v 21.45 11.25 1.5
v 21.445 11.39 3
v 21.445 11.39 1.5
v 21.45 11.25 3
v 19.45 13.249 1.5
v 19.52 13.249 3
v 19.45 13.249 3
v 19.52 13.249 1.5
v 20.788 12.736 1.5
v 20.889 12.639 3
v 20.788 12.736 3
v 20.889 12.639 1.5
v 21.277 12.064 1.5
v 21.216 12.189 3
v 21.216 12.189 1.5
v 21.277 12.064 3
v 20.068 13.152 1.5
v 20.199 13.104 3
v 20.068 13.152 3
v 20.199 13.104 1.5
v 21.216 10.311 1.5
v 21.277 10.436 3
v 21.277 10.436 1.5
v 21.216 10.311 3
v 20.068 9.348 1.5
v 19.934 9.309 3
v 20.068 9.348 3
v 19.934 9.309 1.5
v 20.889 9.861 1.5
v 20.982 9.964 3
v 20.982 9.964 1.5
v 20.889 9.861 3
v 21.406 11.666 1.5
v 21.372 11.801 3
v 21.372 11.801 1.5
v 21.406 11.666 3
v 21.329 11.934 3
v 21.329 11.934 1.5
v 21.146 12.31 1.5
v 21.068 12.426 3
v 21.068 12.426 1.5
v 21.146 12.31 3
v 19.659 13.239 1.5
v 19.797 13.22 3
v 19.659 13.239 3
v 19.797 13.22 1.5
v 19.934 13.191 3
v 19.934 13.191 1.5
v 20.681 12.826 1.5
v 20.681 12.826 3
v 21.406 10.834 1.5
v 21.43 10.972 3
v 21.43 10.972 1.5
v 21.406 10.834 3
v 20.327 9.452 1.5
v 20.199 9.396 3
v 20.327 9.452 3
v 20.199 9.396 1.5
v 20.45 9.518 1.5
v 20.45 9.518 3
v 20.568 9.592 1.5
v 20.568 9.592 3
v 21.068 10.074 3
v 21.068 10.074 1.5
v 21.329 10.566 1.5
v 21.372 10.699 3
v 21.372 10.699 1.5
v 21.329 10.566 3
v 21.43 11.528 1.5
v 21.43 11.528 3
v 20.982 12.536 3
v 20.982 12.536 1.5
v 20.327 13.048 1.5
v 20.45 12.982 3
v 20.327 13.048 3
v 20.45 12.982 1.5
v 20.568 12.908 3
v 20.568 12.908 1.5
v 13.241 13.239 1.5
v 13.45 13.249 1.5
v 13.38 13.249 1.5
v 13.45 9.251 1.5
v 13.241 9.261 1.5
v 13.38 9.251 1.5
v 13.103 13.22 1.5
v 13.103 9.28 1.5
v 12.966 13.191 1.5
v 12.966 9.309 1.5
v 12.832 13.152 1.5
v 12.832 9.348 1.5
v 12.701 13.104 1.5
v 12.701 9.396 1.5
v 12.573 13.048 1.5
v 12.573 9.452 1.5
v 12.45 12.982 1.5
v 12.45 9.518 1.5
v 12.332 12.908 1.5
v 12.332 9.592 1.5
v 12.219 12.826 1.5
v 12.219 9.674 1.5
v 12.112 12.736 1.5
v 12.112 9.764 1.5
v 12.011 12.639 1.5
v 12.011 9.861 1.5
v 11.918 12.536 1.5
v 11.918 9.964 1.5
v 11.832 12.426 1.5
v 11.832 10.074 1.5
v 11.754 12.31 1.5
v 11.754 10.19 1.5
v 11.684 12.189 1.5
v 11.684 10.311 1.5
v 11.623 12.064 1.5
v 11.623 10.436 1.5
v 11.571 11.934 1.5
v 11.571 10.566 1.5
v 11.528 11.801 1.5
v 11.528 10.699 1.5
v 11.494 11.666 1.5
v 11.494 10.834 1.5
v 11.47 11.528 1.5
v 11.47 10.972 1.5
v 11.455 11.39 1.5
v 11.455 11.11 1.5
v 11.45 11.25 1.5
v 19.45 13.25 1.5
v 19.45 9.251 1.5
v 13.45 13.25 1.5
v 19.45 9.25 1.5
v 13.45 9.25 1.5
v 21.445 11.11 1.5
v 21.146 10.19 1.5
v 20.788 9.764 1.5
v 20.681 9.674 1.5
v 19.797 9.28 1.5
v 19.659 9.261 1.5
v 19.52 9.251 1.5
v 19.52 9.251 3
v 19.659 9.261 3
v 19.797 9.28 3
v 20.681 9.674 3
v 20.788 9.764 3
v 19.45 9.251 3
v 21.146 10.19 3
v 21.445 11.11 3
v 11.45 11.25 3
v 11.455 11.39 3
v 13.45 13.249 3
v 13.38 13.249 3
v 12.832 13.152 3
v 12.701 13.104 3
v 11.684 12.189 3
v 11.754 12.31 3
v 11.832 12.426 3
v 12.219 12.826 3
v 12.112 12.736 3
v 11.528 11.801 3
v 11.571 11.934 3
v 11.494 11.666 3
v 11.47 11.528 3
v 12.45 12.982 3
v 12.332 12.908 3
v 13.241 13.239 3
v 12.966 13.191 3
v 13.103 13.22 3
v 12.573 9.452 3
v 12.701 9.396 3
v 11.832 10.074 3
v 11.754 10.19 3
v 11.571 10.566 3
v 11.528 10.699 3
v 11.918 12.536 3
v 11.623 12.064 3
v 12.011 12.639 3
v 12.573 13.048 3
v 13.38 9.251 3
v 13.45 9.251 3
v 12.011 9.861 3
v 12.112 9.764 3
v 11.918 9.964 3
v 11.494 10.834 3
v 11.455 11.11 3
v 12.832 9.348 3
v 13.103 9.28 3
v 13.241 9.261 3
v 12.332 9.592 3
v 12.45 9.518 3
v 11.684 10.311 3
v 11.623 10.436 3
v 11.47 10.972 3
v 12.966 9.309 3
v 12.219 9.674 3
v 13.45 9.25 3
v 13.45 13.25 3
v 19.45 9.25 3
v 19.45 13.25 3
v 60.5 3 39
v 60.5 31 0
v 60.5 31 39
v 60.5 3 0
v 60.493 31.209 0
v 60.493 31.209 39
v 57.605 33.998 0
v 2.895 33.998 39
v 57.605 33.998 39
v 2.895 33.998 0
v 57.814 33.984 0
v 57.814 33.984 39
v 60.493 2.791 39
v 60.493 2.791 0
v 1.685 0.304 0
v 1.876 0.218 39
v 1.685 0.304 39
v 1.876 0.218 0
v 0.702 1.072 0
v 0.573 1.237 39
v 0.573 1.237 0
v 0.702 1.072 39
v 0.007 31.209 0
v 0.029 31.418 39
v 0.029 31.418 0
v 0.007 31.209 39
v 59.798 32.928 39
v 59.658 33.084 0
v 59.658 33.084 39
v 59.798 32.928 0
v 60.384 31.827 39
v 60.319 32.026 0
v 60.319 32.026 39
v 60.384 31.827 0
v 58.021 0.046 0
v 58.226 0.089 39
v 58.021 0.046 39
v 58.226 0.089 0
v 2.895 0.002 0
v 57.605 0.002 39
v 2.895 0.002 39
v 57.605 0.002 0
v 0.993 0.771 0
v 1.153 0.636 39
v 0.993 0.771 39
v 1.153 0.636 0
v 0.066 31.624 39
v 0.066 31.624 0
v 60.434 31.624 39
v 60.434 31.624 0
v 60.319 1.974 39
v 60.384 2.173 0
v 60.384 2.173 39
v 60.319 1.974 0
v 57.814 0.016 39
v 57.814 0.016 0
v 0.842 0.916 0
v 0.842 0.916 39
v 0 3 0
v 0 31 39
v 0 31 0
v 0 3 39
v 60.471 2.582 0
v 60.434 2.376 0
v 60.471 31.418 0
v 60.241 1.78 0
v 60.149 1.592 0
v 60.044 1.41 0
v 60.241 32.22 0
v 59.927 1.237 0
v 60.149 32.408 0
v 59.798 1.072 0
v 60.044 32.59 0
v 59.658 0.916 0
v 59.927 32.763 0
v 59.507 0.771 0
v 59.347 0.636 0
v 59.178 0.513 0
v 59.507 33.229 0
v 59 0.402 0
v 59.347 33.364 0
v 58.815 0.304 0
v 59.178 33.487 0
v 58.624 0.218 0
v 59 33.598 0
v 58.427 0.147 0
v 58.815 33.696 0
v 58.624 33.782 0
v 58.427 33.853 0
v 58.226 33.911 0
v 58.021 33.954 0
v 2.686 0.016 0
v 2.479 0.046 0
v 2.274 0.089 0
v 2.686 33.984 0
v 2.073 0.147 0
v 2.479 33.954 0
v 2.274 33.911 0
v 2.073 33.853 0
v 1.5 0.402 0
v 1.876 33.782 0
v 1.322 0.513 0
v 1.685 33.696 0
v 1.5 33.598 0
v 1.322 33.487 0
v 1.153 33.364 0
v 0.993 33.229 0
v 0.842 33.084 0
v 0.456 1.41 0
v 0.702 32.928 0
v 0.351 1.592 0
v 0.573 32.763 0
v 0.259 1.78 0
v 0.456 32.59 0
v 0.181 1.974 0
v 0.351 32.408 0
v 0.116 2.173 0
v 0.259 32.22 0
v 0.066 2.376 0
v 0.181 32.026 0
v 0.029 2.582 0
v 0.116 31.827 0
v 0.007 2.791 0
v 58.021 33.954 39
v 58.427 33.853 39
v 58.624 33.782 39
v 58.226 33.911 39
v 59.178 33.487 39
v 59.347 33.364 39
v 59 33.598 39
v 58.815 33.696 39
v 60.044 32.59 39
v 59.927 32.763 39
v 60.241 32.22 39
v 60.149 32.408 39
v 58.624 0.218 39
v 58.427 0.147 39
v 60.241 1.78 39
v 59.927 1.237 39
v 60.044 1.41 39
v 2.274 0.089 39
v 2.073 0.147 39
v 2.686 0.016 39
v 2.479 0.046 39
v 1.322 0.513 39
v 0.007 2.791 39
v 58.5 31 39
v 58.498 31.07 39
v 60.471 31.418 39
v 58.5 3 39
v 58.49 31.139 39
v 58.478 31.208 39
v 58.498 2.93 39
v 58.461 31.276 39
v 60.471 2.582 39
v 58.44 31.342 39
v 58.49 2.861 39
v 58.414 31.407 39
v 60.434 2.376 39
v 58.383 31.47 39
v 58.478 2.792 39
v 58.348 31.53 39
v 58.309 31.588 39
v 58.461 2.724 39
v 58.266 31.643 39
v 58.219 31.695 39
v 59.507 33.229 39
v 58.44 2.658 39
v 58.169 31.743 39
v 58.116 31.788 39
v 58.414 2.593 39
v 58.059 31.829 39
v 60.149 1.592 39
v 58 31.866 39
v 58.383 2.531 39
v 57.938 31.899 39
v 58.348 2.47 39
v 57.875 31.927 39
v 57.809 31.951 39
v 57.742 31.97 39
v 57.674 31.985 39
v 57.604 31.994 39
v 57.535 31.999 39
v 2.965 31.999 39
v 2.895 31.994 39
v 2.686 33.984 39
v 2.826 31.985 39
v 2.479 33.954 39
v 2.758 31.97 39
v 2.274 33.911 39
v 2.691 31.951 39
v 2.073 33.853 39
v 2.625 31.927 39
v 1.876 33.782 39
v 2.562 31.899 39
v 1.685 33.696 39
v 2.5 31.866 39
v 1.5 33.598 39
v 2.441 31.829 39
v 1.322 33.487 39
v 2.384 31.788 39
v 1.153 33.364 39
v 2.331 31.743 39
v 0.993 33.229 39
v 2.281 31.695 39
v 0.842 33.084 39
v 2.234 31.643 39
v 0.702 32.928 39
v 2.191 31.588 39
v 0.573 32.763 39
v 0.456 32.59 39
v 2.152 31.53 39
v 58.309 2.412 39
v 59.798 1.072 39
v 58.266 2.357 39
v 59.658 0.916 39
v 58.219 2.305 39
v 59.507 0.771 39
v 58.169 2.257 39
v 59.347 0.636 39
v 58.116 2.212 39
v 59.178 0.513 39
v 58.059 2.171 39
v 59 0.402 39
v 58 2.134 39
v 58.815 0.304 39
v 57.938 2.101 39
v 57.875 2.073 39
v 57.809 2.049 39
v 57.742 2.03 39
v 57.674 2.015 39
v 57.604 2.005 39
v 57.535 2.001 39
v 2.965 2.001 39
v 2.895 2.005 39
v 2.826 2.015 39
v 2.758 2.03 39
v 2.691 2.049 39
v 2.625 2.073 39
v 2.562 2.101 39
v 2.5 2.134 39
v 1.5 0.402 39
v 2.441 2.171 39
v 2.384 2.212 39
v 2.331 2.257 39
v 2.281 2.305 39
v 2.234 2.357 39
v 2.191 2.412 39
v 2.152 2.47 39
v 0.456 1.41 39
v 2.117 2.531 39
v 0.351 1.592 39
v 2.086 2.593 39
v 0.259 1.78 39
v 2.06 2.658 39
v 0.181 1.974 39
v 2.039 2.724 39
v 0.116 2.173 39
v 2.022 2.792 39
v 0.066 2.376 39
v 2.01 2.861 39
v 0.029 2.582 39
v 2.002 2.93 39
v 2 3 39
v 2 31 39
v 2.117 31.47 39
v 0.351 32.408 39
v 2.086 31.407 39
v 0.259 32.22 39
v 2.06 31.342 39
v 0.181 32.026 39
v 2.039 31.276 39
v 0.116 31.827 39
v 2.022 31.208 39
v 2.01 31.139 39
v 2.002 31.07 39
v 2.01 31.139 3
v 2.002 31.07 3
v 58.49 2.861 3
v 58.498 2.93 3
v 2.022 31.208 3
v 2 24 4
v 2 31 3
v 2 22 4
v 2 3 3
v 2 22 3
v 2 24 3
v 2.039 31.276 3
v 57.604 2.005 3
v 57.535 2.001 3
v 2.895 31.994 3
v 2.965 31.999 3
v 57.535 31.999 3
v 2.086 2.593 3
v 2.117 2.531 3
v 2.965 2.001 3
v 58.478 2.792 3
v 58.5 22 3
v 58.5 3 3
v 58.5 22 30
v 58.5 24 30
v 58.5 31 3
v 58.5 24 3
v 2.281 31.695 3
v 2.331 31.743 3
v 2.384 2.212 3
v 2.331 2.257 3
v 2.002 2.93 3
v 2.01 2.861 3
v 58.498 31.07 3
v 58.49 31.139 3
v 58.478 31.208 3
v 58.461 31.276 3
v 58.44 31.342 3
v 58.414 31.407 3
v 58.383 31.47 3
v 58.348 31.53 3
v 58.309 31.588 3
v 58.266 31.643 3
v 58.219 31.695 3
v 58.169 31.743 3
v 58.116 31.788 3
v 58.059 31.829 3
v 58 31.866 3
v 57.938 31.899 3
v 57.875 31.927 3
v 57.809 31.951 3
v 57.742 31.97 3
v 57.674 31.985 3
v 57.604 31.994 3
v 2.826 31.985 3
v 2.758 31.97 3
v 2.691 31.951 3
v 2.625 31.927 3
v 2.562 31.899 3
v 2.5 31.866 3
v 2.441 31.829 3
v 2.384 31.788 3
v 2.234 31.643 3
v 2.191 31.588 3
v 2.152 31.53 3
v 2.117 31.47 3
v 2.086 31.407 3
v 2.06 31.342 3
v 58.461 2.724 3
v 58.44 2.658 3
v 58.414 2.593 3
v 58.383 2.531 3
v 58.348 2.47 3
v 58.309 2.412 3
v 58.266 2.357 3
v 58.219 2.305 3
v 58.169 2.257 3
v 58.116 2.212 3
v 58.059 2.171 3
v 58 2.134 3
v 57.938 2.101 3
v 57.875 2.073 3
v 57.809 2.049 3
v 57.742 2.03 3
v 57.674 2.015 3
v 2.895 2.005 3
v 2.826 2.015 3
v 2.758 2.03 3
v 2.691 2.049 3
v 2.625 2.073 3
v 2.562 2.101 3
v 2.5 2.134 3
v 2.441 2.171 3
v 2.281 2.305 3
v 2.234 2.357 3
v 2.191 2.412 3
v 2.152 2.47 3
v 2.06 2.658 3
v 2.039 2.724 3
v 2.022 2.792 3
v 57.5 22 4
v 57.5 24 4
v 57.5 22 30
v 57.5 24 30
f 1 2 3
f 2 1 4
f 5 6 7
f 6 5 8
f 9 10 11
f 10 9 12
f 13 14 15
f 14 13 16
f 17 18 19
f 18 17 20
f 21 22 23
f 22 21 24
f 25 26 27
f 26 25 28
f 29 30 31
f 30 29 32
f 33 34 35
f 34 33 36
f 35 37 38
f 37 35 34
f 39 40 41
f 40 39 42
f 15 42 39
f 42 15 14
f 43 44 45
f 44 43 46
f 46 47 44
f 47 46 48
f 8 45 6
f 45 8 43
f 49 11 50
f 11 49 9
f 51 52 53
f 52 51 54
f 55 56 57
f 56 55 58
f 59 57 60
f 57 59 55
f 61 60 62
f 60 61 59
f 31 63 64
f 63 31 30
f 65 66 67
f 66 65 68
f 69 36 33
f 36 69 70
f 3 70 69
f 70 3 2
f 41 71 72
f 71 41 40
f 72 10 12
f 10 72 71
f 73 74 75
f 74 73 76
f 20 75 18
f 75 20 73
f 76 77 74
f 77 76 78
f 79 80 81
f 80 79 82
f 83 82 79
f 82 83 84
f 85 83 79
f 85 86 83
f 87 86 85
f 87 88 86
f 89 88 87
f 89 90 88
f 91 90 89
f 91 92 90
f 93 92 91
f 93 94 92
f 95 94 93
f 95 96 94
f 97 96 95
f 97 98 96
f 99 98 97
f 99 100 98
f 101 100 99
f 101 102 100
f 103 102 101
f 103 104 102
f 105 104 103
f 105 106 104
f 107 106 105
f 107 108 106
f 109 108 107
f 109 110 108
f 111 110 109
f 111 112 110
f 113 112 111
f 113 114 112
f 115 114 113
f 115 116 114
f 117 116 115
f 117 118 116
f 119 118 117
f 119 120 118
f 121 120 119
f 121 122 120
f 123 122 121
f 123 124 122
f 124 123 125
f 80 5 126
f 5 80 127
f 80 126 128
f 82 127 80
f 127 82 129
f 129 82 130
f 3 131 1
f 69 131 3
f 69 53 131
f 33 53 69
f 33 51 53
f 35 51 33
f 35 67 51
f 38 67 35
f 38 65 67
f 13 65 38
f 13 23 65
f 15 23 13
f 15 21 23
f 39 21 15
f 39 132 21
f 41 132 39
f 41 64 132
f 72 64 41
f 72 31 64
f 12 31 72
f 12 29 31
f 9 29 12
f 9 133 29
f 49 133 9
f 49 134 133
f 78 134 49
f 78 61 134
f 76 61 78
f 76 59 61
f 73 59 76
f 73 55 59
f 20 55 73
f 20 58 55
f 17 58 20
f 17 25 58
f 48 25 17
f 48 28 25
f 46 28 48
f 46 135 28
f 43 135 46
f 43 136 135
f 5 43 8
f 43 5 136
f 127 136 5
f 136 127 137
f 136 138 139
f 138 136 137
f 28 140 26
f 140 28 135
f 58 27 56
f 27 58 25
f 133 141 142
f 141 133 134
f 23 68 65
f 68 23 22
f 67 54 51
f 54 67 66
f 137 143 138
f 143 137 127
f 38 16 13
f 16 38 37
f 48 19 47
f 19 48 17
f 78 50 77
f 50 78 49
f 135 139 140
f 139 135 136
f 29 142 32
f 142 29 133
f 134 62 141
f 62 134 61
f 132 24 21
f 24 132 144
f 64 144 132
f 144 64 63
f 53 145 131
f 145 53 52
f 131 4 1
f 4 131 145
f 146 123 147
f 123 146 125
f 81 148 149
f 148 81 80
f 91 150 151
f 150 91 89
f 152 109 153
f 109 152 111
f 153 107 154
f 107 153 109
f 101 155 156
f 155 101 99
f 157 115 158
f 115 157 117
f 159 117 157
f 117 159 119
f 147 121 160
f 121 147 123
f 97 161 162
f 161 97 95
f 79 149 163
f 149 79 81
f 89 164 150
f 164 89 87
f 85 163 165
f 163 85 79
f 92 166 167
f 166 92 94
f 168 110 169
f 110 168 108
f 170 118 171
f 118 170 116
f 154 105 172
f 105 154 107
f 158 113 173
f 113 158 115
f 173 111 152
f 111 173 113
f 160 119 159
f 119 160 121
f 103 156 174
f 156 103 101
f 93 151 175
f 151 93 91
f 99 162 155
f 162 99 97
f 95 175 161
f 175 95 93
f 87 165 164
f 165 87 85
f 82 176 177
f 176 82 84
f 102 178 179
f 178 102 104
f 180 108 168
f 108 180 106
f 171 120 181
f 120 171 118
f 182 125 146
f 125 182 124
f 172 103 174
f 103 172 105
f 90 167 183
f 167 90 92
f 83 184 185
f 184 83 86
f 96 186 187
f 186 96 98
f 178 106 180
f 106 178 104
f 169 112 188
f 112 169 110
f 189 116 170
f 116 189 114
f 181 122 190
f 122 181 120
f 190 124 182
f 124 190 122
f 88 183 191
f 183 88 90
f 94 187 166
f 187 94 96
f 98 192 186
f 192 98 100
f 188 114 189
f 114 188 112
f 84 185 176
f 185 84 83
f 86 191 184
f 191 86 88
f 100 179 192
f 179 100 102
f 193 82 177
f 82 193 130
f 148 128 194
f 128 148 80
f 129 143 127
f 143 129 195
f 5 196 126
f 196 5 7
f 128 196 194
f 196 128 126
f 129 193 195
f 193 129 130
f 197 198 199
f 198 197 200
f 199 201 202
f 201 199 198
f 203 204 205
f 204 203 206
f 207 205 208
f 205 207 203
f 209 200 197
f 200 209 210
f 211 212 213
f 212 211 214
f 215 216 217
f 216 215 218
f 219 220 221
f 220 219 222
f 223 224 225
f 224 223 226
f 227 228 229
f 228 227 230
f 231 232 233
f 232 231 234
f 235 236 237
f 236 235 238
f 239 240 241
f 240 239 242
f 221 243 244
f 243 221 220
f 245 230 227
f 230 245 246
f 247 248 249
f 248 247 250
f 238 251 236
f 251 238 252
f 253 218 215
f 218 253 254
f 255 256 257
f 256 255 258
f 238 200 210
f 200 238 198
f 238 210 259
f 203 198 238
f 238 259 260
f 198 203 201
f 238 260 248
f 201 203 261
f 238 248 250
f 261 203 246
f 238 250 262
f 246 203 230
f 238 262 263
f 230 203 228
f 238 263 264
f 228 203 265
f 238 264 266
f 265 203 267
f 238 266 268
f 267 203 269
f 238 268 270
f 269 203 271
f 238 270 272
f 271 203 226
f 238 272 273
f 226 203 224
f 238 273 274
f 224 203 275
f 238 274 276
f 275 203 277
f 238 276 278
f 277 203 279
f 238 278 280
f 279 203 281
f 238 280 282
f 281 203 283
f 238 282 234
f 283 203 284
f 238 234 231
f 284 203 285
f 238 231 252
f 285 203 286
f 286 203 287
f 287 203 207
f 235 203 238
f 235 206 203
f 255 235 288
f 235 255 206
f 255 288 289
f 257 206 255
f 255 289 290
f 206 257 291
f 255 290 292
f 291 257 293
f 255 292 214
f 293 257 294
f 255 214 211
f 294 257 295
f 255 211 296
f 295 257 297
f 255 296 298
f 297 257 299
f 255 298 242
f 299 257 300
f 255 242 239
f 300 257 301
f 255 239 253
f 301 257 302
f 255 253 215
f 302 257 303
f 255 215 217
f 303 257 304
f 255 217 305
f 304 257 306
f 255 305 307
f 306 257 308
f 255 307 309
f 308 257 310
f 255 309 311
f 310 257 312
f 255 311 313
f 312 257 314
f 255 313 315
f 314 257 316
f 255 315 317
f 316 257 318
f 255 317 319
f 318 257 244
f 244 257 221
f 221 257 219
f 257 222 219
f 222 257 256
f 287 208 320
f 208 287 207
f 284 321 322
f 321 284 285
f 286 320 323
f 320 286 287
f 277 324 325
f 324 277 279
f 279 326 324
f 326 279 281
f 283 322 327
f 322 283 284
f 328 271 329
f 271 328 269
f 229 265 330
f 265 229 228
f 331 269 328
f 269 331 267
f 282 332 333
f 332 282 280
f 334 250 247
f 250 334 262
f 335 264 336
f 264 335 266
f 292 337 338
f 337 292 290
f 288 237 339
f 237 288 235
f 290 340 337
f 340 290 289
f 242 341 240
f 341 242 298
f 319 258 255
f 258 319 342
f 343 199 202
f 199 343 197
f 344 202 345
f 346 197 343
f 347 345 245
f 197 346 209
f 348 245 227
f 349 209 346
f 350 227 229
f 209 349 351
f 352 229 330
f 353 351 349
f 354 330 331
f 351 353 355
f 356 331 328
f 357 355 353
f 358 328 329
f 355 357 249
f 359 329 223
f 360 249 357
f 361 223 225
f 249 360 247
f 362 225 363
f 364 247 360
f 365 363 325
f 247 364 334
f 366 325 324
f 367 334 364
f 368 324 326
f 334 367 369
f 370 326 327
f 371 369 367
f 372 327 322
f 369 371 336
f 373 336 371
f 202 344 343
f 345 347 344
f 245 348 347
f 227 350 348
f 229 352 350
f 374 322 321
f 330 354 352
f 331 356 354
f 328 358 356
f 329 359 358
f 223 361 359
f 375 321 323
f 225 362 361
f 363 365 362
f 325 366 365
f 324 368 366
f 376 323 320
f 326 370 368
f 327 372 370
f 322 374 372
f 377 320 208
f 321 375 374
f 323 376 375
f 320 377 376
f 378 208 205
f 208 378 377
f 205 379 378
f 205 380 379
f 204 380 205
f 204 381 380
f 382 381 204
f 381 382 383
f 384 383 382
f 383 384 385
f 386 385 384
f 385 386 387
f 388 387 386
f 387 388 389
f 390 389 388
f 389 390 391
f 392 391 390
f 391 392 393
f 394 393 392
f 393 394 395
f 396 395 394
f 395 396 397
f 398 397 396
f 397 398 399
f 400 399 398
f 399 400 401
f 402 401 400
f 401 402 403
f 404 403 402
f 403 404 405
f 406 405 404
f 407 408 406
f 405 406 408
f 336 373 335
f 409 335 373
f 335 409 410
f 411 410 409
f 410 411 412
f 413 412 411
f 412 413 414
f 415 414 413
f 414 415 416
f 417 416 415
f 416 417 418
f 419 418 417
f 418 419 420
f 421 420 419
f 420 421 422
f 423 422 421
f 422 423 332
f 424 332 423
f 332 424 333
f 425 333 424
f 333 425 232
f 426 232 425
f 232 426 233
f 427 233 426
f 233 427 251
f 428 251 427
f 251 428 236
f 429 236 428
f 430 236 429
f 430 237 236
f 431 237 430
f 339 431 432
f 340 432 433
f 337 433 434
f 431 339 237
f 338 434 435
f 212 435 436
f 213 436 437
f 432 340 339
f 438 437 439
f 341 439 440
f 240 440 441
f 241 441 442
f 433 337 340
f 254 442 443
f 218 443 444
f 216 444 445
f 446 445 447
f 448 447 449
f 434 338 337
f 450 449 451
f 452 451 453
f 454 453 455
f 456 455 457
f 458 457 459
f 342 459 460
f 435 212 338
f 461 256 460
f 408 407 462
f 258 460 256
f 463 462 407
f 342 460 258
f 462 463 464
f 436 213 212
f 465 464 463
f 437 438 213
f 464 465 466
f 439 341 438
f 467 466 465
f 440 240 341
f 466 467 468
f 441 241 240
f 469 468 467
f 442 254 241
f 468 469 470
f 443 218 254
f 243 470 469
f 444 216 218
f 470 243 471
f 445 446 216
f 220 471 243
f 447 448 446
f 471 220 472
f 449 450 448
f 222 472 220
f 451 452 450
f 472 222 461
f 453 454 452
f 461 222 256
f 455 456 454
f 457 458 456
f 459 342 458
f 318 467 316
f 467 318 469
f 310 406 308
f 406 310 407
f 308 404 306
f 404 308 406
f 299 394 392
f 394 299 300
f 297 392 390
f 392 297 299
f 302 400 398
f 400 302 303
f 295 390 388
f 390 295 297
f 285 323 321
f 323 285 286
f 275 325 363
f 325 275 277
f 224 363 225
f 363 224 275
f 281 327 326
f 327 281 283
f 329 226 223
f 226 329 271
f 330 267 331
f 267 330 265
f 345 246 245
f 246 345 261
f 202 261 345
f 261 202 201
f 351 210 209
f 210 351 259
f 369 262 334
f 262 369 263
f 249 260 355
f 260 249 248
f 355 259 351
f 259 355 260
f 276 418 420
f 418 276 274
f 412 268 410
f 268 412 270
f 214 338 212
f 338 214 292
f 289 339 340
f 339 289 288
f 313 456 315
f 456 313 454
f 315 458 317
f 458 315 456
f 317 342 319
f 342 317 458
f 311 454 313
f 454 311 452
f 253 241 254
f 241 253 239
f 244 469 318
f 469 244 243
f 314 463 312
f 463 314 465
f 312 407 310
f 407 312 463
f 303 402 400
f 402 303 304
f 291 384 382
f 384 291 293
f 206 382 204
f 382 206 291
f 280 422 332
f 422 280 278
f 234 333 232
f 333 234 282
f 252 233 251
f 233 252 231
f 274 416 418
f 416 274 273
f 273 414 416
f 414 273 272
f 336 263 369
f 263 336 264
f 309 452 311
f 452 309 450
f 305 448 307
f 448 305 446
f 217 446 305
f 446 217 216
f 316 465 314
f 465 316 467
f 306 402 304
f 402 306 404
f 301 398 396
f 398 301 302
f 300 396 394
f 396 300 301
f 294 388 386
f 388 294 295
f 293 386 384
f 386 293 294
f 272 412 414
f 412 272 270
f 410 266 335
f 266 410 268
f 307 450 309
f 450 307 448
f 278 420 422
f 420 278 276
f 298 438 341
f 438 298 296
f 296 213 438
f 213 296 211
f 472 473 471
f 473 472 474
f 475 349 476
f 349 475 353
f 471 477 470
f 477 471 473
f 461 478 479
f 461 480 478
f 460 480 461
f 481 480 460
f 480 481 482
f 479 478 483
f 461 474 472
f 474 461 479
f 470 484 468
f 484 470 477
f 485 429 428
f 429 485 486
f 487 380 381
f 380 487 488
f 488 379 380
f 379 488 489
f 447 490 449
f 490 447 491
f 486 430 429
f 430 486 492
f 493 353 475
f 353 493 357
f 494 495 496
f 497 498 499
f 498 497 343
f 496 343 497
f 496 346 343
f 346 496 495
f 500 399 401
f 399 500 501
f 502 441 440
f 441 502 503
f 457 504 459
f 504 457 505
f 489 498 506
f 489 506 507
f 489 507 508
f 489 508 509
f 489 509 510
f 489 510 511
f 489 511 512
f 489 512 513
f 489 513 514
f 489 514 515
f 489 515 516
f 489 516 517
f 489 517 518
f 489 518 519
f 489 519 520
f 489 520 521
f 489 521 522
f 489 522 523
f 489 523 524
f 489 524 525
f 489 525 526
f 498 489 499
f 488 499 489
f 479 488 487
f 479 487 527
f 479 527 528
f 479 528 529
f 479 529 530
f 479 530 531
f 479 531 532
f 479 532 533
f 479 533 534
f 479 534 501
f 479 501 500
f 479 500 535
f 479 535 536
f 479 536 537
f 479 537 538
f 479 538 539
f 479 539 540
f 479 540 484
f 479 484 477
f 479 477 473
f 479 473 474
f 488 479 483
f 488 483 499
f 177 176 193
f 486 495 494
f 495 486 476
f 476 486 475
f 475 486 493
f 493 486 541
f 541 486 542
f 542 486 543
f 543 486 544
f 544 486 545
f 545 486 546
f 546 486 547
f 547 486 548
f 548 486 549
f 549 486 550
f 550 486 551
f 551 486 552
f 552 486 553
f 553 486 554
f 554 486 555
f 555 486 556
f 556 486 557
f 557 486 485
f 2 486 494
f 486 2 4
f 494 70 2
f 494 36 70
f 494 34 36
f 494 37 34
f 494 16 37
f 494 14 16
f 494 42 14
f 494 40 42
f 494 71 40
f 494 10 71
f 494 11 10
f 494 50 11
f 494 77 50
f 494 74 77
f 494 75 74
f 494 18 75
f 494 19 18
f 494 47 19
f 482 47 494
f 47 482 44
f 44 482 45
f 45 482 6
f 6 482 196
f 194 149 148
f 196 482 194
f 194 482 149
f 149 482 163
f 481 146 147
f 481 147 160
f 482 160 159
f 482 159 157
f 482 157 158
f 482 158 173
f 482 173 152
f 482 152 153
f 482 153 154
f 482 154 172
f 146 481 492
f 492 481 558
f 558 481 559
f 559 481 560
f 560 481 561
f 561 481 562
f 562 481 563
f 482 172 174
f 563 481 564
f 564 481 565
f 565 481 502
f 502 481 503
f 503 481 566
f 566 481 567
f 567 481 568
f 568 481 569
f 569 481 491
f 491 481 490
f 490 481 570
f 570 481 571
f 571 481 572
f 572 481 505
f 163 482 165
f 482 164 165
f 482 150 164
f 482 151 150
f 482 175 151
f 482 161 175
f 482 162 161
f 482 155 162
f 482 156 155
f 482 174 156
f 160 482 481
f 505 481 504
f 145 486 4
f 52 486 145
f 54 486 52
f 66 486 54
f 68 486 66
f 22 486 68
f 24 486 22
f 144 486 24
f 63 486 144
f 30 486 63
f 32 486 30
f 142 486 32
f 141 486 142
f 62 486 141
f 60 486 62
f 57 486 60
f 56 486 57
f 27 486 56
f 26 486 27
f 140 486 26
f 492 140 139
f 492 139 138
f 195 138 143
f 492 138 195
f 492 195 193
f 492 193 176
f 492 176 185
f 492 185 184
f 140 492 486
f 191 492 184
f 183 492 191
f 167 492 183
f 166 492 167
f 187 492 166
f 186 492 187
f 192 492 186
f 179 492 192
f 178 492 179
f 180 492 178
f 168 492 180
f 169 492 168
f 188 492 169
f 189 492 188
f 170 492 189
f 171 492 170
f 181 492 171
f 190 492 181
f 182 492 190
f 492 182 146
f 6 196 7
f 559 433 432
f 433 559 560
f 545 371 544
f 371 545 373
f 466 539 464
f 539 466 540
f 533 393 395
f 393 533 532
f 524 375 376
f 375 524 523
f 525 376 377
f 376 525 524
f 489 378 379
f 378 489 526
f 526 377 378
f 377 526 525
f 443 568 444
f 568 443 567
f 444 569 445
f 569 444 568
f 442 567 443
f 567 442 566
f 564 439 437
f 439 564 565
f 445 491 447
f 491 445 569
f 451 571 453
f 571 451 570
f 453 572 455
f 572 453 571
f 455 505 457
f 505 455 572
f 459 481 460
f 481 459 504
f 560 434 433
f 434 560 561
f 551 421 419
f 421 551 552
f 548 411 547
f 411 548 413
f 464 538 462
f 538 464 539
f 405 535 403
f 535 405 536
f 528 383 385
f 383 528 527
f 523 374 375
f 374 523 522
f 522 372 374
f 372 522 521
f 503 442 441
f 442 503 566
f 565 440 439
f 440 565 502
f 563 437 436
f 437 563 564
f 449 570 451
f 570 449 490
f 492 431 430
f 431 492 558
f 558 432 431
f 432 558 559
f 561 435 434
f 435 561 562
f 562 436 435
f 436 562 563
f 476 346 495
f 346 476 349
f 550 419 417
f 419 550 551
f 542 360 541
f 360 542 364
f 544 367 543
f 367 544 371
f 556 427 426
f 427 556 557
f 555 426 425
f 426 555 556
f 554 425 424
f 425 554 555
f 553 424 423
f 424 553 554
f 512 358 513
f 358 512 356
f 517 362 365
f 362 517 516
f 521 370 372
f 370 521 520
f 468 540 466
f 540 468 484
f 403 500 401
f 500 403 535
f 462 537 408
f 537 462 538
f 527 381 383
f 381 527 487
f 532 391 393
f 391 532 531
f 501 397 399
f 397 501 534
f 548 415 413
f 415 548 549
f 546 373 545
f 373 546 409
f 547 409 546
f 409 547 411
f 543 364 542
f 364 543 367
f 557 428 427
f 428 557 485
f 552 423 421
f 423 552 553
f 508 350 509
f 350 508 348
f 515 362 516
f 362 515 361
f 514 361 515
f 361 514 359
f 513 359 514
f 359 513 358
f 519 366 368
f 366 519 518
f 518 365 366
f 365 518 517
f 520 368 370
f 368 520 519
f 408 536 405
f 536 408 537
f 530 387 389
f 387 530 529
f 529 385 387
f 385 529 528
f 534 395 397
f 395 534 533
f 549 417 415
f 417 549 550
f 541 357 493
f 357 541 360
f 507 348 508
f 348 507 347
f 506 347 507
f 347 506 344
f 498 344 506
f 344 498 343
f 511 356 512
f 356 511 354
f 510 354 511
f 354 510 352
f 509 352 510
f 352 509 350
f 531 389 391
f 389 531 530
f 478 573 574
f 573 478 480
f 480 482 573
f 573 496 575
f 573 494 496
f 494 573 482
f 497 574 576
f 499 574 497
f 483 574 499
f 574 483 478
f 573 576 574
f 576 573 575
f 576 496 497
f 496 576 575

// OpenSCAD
// Simple Cover for the Iridium Mini Radio Beacon without USB opening

$fn=90; // fragments
wall = 2.0; // wall thickness
end_wall = 3.0; // end wall thickness
internal_width = 56.5; // internal width (X) of the cover
internal_depth = 30.0; // internal depth (Y) of the cover
internal_height = 35.0; // internal height (Z) of the cover
lid_insert = 1.0; // extra height for the lid insert

battery_support_height = 1.0; // Height (Z) of the battery support above the floor
battery_support_depth = 2.0; // Depth (Y) of the battery support
battery_support_offset = 5.0; // Y offset of the battery support

battery_support_2_width = 1.0; // Width (X) of the battery support from the wall
battery_support_2_height = 27.0; // Internal height (Z) of the battery support

internal_corner_radius = 1.0; // radius of the internal corner cylinder

usb_r = 2.0; // radius of the opening for the USB connector
usb_width = 10.0; // total width of the opening for the USB
usb_height = 1.5; // height of the recess for the USB connector
usb_x_offset = -13.8; // X offset of the USB connector
usb_y_offset = 5.75; // y offset of the USB connector

height = internal_height + end_wall + lid_insert; // cover external height (Z)
width = internal_width + (2 * wall); // cover external width (X)
depth = internal_depth + (2 * wall); // cover external depth (Y)

external_corner_radius = internal_corner_radius + wall; // external corner radius

module cover()
{
    translate([external_corner_radius, external_corner_radius, 0])
        minkowski() {
            cube([(width - (2 * external_corner_radius)), (depth - (2 * external_corner_radius)), (height / 2)]);
            cylinder(h=(height / 2), r=external_corner_radius);
        }
}

module void()
// Void will be higher than required to avoid zero thickness skin across opening
{
    translate([external_corner_radius, external_corner_radius, end_wall])
        minkowski() {
            cube([(internal_width - (2 * internal_corner_radius)), (internal_depth - (2 * internal_corner_radius)), (height / 2)]);
            cylinder(h=(height / 2), r=internal_corner_radius);
        }
}

module usb_opening_end_1()
// Cylinder is taller than it needs to be to avoid zero thickness skins
{
    translate([((usb_width / 2) - usb_r),0, 0]) {
        cylinder(h=end_wall,r=usb_r);
    }
}

module usb_opening_end_2()
// Cylinder is taller than it needs to be to avoid zero thickness skins
{
    translate([(0-((usb_width / 2) - usb_r)),0, 0]) {
        cylinder(h=end_wall,r=usb_r);
    }
}

module usb_opening_mid()
// Cube is taller than it needs to be to avoid zero thickness skins
{
    translate([(-0.5 * (usb_width - (2 * usb_r))), (-0.5 * (2 * usb_r)), 0]) {
        cube([(usb_width - (2 * usb_r)), (2 * usb_r), end_wall]);
    }
}

module usb()
{
    translate([((width / 2) + usb_x_offset), ((depth / 2) - usb_y_offset), (end_wall - usb_height)]) {
        union() {
            usb_opening_end_1();
            usb_opening_end_2();
            usb_opening_mid();
        }
    }
}

module battery_support()
{
    translate([0, ((depth/2) + battery_support_offset), 0]) {
        cube([width, battery_support_depth, (end_wall + battery_support_height)]);
    }
}

module battery_support_2()
{
    translate([(width - (wall + battery_support_2_width)), ((depth/2) + battery_support_offset), 0]) {
        cube([(wall + battery_support_2_width), battery_support_depth, (end_wall + battery_support_2_height)]);
    }
}

module finished_cover()
{
    union() {
        difference() {
            cover();
            void();
            usb();
        }
        battery_support();
        battery_support_2();
    }
}

finished_cover();
